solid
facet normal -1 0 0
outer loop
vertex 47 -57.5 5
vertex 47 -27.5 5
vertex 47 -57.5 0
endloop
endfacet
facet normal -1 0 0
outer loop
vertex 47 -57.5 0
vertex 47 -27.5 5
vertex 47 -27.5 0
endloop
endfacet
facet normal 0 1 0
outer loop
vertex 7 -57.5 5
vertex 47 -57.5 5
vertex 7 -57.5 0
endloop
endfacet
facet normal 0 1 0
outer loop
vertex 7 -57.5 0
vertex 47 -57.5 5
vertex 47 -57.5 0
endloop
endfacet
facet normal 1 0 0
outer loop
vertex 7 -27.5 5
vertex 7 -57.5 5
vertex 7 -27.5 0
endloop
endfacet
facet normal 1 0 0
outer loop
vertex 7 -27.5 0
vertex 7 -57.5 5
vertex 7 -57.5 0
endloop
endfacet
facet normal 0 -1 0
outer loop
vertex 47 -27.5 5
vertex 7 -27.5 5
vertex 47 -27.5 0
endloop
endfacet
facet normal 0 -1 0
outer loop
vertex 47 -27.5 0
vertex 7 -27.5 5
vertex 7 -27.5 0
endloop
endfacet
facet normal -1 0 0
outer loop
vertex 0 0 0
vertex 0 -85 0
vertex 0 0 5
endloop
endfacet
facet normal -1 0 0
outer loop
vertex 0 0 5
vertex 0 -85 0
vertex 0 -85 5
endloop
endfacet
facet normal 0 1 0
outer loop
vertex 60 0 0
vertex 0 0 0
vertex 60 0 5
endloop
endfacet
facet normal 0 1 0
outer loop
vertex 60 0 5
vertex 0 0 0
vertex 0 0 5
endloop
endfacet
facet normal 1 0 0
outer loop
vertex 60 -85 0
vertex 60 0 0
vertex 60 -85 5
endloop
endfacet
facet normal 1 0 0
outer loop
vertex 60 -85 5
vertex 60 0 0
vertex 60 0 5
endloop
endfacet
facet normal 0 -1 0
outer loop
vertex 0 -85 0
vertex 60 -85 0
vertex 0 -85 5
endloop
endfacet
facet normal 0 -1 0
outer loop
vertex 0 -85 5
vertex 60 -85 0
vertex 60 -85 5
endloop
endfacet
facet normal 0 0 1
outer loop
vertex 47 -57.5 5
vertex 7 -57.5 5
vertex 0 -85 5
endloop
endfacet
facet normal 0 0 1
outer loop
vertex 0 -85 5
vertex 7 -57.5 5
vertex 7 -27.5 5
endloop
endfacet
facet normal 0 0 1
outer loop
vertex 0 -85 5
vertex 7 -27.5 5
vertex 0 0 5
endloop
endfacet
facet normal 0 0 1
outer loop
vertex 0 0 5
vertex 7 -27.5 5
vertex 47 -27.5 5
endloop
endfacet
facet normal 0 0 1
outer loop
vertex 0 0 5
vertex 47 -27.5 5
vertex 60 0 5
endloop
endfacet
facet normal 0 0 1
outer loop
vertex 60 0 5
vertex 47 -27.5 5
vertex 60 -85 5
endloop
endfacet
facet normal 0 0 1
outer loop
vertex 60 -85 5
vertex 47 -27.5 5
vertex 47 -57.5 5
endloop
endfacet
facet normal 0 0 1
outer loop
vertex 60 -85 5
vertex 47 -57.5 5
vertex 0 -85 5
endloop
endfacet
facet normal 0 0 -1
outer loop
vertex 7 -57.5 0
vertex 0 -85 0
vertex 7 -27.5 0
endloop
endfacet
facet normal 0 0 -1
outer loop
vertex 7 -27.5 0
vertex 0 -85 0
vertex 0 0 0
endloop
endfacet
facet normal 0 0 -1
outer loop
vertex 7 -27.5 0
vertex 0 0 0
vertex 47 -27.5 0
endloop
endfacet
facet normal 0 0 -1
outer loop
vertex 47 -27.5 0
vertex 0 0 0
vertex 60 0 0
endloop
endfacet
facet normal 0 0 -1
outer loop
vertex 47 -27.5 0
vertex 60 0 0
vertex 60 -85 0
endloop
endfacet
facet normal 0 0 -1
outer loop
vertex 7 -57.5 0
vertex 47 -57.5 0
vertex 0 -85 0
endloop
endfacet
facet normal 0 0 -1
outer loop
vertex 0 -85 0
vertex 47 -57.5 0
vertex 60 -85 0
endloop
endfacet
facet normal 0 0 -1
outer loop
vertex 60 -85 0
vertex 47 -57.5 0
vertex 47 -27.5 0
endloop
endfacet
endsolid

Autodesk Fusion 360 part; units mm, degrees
sketch "Sketch1" plane through (0, 0, 0) normal (0, 0, 1) x (1, 0, 0)
  line L0 (0, 0) -> (60, 0)
  line L1 (60, 0) -> (60, -85)
  line L2 (60, -85) -> (0, -85)
  line L3 (0, -85) -> (0, 0)
  line L4 (7, -27.5) -> (47, -27.5)
  line L5 (47, -27.5) -> (47, -57.5)
  line L6 (47, -57.5) -> (7, -57.5)
  line L7 (7, -57.5) -> (7, -27.5)
  dimension "d7" = 60
  dimension "d8" = 85
  dimension "d15" = 40
  dimension "d16" = 30
  dimension "d17" = 7
  dimension "d18" = 27.5
extrude "Extrude1" add sketch "Sketch1" along normal blind 5 contours L0 L1 L2 L3 | L4 L5 L6 L7
extrude "Extrude2" cut sketch "Sketch1" along normal blind 100 contours L4 L5 L6 L7
equation "perfboard_length = 65 mm"
equation "perfboard_width = 40 mm"
equation "width = perfboard_length + 2 * screw_radius * 2"
equation "length = perfboard_width + 2 * screw_radius * 2"
equation "height = 5 mm"
equation "d7 = length"
equation "d8 = width"
equation "d9 = height"
equation "middle_gap_width = 30 mm"
equation "middle_gap_length = length - 2 * screw_radius * 2"
equation "middle_gap_small_distance = 7 mm"
equation "middle_gap_big_distance = ( width - middle_gap_width ) / 2"
equation "d15 = middle_gap_length"
equation "d16 = middle_gap_width"
equation "d17 = middle_gap_small_distance"
equation "d18 = middle_gap_big_distance"
equation "extra = 100 mm"
equation "d20 = extra"
equation "screw_radius = 5 mm"
